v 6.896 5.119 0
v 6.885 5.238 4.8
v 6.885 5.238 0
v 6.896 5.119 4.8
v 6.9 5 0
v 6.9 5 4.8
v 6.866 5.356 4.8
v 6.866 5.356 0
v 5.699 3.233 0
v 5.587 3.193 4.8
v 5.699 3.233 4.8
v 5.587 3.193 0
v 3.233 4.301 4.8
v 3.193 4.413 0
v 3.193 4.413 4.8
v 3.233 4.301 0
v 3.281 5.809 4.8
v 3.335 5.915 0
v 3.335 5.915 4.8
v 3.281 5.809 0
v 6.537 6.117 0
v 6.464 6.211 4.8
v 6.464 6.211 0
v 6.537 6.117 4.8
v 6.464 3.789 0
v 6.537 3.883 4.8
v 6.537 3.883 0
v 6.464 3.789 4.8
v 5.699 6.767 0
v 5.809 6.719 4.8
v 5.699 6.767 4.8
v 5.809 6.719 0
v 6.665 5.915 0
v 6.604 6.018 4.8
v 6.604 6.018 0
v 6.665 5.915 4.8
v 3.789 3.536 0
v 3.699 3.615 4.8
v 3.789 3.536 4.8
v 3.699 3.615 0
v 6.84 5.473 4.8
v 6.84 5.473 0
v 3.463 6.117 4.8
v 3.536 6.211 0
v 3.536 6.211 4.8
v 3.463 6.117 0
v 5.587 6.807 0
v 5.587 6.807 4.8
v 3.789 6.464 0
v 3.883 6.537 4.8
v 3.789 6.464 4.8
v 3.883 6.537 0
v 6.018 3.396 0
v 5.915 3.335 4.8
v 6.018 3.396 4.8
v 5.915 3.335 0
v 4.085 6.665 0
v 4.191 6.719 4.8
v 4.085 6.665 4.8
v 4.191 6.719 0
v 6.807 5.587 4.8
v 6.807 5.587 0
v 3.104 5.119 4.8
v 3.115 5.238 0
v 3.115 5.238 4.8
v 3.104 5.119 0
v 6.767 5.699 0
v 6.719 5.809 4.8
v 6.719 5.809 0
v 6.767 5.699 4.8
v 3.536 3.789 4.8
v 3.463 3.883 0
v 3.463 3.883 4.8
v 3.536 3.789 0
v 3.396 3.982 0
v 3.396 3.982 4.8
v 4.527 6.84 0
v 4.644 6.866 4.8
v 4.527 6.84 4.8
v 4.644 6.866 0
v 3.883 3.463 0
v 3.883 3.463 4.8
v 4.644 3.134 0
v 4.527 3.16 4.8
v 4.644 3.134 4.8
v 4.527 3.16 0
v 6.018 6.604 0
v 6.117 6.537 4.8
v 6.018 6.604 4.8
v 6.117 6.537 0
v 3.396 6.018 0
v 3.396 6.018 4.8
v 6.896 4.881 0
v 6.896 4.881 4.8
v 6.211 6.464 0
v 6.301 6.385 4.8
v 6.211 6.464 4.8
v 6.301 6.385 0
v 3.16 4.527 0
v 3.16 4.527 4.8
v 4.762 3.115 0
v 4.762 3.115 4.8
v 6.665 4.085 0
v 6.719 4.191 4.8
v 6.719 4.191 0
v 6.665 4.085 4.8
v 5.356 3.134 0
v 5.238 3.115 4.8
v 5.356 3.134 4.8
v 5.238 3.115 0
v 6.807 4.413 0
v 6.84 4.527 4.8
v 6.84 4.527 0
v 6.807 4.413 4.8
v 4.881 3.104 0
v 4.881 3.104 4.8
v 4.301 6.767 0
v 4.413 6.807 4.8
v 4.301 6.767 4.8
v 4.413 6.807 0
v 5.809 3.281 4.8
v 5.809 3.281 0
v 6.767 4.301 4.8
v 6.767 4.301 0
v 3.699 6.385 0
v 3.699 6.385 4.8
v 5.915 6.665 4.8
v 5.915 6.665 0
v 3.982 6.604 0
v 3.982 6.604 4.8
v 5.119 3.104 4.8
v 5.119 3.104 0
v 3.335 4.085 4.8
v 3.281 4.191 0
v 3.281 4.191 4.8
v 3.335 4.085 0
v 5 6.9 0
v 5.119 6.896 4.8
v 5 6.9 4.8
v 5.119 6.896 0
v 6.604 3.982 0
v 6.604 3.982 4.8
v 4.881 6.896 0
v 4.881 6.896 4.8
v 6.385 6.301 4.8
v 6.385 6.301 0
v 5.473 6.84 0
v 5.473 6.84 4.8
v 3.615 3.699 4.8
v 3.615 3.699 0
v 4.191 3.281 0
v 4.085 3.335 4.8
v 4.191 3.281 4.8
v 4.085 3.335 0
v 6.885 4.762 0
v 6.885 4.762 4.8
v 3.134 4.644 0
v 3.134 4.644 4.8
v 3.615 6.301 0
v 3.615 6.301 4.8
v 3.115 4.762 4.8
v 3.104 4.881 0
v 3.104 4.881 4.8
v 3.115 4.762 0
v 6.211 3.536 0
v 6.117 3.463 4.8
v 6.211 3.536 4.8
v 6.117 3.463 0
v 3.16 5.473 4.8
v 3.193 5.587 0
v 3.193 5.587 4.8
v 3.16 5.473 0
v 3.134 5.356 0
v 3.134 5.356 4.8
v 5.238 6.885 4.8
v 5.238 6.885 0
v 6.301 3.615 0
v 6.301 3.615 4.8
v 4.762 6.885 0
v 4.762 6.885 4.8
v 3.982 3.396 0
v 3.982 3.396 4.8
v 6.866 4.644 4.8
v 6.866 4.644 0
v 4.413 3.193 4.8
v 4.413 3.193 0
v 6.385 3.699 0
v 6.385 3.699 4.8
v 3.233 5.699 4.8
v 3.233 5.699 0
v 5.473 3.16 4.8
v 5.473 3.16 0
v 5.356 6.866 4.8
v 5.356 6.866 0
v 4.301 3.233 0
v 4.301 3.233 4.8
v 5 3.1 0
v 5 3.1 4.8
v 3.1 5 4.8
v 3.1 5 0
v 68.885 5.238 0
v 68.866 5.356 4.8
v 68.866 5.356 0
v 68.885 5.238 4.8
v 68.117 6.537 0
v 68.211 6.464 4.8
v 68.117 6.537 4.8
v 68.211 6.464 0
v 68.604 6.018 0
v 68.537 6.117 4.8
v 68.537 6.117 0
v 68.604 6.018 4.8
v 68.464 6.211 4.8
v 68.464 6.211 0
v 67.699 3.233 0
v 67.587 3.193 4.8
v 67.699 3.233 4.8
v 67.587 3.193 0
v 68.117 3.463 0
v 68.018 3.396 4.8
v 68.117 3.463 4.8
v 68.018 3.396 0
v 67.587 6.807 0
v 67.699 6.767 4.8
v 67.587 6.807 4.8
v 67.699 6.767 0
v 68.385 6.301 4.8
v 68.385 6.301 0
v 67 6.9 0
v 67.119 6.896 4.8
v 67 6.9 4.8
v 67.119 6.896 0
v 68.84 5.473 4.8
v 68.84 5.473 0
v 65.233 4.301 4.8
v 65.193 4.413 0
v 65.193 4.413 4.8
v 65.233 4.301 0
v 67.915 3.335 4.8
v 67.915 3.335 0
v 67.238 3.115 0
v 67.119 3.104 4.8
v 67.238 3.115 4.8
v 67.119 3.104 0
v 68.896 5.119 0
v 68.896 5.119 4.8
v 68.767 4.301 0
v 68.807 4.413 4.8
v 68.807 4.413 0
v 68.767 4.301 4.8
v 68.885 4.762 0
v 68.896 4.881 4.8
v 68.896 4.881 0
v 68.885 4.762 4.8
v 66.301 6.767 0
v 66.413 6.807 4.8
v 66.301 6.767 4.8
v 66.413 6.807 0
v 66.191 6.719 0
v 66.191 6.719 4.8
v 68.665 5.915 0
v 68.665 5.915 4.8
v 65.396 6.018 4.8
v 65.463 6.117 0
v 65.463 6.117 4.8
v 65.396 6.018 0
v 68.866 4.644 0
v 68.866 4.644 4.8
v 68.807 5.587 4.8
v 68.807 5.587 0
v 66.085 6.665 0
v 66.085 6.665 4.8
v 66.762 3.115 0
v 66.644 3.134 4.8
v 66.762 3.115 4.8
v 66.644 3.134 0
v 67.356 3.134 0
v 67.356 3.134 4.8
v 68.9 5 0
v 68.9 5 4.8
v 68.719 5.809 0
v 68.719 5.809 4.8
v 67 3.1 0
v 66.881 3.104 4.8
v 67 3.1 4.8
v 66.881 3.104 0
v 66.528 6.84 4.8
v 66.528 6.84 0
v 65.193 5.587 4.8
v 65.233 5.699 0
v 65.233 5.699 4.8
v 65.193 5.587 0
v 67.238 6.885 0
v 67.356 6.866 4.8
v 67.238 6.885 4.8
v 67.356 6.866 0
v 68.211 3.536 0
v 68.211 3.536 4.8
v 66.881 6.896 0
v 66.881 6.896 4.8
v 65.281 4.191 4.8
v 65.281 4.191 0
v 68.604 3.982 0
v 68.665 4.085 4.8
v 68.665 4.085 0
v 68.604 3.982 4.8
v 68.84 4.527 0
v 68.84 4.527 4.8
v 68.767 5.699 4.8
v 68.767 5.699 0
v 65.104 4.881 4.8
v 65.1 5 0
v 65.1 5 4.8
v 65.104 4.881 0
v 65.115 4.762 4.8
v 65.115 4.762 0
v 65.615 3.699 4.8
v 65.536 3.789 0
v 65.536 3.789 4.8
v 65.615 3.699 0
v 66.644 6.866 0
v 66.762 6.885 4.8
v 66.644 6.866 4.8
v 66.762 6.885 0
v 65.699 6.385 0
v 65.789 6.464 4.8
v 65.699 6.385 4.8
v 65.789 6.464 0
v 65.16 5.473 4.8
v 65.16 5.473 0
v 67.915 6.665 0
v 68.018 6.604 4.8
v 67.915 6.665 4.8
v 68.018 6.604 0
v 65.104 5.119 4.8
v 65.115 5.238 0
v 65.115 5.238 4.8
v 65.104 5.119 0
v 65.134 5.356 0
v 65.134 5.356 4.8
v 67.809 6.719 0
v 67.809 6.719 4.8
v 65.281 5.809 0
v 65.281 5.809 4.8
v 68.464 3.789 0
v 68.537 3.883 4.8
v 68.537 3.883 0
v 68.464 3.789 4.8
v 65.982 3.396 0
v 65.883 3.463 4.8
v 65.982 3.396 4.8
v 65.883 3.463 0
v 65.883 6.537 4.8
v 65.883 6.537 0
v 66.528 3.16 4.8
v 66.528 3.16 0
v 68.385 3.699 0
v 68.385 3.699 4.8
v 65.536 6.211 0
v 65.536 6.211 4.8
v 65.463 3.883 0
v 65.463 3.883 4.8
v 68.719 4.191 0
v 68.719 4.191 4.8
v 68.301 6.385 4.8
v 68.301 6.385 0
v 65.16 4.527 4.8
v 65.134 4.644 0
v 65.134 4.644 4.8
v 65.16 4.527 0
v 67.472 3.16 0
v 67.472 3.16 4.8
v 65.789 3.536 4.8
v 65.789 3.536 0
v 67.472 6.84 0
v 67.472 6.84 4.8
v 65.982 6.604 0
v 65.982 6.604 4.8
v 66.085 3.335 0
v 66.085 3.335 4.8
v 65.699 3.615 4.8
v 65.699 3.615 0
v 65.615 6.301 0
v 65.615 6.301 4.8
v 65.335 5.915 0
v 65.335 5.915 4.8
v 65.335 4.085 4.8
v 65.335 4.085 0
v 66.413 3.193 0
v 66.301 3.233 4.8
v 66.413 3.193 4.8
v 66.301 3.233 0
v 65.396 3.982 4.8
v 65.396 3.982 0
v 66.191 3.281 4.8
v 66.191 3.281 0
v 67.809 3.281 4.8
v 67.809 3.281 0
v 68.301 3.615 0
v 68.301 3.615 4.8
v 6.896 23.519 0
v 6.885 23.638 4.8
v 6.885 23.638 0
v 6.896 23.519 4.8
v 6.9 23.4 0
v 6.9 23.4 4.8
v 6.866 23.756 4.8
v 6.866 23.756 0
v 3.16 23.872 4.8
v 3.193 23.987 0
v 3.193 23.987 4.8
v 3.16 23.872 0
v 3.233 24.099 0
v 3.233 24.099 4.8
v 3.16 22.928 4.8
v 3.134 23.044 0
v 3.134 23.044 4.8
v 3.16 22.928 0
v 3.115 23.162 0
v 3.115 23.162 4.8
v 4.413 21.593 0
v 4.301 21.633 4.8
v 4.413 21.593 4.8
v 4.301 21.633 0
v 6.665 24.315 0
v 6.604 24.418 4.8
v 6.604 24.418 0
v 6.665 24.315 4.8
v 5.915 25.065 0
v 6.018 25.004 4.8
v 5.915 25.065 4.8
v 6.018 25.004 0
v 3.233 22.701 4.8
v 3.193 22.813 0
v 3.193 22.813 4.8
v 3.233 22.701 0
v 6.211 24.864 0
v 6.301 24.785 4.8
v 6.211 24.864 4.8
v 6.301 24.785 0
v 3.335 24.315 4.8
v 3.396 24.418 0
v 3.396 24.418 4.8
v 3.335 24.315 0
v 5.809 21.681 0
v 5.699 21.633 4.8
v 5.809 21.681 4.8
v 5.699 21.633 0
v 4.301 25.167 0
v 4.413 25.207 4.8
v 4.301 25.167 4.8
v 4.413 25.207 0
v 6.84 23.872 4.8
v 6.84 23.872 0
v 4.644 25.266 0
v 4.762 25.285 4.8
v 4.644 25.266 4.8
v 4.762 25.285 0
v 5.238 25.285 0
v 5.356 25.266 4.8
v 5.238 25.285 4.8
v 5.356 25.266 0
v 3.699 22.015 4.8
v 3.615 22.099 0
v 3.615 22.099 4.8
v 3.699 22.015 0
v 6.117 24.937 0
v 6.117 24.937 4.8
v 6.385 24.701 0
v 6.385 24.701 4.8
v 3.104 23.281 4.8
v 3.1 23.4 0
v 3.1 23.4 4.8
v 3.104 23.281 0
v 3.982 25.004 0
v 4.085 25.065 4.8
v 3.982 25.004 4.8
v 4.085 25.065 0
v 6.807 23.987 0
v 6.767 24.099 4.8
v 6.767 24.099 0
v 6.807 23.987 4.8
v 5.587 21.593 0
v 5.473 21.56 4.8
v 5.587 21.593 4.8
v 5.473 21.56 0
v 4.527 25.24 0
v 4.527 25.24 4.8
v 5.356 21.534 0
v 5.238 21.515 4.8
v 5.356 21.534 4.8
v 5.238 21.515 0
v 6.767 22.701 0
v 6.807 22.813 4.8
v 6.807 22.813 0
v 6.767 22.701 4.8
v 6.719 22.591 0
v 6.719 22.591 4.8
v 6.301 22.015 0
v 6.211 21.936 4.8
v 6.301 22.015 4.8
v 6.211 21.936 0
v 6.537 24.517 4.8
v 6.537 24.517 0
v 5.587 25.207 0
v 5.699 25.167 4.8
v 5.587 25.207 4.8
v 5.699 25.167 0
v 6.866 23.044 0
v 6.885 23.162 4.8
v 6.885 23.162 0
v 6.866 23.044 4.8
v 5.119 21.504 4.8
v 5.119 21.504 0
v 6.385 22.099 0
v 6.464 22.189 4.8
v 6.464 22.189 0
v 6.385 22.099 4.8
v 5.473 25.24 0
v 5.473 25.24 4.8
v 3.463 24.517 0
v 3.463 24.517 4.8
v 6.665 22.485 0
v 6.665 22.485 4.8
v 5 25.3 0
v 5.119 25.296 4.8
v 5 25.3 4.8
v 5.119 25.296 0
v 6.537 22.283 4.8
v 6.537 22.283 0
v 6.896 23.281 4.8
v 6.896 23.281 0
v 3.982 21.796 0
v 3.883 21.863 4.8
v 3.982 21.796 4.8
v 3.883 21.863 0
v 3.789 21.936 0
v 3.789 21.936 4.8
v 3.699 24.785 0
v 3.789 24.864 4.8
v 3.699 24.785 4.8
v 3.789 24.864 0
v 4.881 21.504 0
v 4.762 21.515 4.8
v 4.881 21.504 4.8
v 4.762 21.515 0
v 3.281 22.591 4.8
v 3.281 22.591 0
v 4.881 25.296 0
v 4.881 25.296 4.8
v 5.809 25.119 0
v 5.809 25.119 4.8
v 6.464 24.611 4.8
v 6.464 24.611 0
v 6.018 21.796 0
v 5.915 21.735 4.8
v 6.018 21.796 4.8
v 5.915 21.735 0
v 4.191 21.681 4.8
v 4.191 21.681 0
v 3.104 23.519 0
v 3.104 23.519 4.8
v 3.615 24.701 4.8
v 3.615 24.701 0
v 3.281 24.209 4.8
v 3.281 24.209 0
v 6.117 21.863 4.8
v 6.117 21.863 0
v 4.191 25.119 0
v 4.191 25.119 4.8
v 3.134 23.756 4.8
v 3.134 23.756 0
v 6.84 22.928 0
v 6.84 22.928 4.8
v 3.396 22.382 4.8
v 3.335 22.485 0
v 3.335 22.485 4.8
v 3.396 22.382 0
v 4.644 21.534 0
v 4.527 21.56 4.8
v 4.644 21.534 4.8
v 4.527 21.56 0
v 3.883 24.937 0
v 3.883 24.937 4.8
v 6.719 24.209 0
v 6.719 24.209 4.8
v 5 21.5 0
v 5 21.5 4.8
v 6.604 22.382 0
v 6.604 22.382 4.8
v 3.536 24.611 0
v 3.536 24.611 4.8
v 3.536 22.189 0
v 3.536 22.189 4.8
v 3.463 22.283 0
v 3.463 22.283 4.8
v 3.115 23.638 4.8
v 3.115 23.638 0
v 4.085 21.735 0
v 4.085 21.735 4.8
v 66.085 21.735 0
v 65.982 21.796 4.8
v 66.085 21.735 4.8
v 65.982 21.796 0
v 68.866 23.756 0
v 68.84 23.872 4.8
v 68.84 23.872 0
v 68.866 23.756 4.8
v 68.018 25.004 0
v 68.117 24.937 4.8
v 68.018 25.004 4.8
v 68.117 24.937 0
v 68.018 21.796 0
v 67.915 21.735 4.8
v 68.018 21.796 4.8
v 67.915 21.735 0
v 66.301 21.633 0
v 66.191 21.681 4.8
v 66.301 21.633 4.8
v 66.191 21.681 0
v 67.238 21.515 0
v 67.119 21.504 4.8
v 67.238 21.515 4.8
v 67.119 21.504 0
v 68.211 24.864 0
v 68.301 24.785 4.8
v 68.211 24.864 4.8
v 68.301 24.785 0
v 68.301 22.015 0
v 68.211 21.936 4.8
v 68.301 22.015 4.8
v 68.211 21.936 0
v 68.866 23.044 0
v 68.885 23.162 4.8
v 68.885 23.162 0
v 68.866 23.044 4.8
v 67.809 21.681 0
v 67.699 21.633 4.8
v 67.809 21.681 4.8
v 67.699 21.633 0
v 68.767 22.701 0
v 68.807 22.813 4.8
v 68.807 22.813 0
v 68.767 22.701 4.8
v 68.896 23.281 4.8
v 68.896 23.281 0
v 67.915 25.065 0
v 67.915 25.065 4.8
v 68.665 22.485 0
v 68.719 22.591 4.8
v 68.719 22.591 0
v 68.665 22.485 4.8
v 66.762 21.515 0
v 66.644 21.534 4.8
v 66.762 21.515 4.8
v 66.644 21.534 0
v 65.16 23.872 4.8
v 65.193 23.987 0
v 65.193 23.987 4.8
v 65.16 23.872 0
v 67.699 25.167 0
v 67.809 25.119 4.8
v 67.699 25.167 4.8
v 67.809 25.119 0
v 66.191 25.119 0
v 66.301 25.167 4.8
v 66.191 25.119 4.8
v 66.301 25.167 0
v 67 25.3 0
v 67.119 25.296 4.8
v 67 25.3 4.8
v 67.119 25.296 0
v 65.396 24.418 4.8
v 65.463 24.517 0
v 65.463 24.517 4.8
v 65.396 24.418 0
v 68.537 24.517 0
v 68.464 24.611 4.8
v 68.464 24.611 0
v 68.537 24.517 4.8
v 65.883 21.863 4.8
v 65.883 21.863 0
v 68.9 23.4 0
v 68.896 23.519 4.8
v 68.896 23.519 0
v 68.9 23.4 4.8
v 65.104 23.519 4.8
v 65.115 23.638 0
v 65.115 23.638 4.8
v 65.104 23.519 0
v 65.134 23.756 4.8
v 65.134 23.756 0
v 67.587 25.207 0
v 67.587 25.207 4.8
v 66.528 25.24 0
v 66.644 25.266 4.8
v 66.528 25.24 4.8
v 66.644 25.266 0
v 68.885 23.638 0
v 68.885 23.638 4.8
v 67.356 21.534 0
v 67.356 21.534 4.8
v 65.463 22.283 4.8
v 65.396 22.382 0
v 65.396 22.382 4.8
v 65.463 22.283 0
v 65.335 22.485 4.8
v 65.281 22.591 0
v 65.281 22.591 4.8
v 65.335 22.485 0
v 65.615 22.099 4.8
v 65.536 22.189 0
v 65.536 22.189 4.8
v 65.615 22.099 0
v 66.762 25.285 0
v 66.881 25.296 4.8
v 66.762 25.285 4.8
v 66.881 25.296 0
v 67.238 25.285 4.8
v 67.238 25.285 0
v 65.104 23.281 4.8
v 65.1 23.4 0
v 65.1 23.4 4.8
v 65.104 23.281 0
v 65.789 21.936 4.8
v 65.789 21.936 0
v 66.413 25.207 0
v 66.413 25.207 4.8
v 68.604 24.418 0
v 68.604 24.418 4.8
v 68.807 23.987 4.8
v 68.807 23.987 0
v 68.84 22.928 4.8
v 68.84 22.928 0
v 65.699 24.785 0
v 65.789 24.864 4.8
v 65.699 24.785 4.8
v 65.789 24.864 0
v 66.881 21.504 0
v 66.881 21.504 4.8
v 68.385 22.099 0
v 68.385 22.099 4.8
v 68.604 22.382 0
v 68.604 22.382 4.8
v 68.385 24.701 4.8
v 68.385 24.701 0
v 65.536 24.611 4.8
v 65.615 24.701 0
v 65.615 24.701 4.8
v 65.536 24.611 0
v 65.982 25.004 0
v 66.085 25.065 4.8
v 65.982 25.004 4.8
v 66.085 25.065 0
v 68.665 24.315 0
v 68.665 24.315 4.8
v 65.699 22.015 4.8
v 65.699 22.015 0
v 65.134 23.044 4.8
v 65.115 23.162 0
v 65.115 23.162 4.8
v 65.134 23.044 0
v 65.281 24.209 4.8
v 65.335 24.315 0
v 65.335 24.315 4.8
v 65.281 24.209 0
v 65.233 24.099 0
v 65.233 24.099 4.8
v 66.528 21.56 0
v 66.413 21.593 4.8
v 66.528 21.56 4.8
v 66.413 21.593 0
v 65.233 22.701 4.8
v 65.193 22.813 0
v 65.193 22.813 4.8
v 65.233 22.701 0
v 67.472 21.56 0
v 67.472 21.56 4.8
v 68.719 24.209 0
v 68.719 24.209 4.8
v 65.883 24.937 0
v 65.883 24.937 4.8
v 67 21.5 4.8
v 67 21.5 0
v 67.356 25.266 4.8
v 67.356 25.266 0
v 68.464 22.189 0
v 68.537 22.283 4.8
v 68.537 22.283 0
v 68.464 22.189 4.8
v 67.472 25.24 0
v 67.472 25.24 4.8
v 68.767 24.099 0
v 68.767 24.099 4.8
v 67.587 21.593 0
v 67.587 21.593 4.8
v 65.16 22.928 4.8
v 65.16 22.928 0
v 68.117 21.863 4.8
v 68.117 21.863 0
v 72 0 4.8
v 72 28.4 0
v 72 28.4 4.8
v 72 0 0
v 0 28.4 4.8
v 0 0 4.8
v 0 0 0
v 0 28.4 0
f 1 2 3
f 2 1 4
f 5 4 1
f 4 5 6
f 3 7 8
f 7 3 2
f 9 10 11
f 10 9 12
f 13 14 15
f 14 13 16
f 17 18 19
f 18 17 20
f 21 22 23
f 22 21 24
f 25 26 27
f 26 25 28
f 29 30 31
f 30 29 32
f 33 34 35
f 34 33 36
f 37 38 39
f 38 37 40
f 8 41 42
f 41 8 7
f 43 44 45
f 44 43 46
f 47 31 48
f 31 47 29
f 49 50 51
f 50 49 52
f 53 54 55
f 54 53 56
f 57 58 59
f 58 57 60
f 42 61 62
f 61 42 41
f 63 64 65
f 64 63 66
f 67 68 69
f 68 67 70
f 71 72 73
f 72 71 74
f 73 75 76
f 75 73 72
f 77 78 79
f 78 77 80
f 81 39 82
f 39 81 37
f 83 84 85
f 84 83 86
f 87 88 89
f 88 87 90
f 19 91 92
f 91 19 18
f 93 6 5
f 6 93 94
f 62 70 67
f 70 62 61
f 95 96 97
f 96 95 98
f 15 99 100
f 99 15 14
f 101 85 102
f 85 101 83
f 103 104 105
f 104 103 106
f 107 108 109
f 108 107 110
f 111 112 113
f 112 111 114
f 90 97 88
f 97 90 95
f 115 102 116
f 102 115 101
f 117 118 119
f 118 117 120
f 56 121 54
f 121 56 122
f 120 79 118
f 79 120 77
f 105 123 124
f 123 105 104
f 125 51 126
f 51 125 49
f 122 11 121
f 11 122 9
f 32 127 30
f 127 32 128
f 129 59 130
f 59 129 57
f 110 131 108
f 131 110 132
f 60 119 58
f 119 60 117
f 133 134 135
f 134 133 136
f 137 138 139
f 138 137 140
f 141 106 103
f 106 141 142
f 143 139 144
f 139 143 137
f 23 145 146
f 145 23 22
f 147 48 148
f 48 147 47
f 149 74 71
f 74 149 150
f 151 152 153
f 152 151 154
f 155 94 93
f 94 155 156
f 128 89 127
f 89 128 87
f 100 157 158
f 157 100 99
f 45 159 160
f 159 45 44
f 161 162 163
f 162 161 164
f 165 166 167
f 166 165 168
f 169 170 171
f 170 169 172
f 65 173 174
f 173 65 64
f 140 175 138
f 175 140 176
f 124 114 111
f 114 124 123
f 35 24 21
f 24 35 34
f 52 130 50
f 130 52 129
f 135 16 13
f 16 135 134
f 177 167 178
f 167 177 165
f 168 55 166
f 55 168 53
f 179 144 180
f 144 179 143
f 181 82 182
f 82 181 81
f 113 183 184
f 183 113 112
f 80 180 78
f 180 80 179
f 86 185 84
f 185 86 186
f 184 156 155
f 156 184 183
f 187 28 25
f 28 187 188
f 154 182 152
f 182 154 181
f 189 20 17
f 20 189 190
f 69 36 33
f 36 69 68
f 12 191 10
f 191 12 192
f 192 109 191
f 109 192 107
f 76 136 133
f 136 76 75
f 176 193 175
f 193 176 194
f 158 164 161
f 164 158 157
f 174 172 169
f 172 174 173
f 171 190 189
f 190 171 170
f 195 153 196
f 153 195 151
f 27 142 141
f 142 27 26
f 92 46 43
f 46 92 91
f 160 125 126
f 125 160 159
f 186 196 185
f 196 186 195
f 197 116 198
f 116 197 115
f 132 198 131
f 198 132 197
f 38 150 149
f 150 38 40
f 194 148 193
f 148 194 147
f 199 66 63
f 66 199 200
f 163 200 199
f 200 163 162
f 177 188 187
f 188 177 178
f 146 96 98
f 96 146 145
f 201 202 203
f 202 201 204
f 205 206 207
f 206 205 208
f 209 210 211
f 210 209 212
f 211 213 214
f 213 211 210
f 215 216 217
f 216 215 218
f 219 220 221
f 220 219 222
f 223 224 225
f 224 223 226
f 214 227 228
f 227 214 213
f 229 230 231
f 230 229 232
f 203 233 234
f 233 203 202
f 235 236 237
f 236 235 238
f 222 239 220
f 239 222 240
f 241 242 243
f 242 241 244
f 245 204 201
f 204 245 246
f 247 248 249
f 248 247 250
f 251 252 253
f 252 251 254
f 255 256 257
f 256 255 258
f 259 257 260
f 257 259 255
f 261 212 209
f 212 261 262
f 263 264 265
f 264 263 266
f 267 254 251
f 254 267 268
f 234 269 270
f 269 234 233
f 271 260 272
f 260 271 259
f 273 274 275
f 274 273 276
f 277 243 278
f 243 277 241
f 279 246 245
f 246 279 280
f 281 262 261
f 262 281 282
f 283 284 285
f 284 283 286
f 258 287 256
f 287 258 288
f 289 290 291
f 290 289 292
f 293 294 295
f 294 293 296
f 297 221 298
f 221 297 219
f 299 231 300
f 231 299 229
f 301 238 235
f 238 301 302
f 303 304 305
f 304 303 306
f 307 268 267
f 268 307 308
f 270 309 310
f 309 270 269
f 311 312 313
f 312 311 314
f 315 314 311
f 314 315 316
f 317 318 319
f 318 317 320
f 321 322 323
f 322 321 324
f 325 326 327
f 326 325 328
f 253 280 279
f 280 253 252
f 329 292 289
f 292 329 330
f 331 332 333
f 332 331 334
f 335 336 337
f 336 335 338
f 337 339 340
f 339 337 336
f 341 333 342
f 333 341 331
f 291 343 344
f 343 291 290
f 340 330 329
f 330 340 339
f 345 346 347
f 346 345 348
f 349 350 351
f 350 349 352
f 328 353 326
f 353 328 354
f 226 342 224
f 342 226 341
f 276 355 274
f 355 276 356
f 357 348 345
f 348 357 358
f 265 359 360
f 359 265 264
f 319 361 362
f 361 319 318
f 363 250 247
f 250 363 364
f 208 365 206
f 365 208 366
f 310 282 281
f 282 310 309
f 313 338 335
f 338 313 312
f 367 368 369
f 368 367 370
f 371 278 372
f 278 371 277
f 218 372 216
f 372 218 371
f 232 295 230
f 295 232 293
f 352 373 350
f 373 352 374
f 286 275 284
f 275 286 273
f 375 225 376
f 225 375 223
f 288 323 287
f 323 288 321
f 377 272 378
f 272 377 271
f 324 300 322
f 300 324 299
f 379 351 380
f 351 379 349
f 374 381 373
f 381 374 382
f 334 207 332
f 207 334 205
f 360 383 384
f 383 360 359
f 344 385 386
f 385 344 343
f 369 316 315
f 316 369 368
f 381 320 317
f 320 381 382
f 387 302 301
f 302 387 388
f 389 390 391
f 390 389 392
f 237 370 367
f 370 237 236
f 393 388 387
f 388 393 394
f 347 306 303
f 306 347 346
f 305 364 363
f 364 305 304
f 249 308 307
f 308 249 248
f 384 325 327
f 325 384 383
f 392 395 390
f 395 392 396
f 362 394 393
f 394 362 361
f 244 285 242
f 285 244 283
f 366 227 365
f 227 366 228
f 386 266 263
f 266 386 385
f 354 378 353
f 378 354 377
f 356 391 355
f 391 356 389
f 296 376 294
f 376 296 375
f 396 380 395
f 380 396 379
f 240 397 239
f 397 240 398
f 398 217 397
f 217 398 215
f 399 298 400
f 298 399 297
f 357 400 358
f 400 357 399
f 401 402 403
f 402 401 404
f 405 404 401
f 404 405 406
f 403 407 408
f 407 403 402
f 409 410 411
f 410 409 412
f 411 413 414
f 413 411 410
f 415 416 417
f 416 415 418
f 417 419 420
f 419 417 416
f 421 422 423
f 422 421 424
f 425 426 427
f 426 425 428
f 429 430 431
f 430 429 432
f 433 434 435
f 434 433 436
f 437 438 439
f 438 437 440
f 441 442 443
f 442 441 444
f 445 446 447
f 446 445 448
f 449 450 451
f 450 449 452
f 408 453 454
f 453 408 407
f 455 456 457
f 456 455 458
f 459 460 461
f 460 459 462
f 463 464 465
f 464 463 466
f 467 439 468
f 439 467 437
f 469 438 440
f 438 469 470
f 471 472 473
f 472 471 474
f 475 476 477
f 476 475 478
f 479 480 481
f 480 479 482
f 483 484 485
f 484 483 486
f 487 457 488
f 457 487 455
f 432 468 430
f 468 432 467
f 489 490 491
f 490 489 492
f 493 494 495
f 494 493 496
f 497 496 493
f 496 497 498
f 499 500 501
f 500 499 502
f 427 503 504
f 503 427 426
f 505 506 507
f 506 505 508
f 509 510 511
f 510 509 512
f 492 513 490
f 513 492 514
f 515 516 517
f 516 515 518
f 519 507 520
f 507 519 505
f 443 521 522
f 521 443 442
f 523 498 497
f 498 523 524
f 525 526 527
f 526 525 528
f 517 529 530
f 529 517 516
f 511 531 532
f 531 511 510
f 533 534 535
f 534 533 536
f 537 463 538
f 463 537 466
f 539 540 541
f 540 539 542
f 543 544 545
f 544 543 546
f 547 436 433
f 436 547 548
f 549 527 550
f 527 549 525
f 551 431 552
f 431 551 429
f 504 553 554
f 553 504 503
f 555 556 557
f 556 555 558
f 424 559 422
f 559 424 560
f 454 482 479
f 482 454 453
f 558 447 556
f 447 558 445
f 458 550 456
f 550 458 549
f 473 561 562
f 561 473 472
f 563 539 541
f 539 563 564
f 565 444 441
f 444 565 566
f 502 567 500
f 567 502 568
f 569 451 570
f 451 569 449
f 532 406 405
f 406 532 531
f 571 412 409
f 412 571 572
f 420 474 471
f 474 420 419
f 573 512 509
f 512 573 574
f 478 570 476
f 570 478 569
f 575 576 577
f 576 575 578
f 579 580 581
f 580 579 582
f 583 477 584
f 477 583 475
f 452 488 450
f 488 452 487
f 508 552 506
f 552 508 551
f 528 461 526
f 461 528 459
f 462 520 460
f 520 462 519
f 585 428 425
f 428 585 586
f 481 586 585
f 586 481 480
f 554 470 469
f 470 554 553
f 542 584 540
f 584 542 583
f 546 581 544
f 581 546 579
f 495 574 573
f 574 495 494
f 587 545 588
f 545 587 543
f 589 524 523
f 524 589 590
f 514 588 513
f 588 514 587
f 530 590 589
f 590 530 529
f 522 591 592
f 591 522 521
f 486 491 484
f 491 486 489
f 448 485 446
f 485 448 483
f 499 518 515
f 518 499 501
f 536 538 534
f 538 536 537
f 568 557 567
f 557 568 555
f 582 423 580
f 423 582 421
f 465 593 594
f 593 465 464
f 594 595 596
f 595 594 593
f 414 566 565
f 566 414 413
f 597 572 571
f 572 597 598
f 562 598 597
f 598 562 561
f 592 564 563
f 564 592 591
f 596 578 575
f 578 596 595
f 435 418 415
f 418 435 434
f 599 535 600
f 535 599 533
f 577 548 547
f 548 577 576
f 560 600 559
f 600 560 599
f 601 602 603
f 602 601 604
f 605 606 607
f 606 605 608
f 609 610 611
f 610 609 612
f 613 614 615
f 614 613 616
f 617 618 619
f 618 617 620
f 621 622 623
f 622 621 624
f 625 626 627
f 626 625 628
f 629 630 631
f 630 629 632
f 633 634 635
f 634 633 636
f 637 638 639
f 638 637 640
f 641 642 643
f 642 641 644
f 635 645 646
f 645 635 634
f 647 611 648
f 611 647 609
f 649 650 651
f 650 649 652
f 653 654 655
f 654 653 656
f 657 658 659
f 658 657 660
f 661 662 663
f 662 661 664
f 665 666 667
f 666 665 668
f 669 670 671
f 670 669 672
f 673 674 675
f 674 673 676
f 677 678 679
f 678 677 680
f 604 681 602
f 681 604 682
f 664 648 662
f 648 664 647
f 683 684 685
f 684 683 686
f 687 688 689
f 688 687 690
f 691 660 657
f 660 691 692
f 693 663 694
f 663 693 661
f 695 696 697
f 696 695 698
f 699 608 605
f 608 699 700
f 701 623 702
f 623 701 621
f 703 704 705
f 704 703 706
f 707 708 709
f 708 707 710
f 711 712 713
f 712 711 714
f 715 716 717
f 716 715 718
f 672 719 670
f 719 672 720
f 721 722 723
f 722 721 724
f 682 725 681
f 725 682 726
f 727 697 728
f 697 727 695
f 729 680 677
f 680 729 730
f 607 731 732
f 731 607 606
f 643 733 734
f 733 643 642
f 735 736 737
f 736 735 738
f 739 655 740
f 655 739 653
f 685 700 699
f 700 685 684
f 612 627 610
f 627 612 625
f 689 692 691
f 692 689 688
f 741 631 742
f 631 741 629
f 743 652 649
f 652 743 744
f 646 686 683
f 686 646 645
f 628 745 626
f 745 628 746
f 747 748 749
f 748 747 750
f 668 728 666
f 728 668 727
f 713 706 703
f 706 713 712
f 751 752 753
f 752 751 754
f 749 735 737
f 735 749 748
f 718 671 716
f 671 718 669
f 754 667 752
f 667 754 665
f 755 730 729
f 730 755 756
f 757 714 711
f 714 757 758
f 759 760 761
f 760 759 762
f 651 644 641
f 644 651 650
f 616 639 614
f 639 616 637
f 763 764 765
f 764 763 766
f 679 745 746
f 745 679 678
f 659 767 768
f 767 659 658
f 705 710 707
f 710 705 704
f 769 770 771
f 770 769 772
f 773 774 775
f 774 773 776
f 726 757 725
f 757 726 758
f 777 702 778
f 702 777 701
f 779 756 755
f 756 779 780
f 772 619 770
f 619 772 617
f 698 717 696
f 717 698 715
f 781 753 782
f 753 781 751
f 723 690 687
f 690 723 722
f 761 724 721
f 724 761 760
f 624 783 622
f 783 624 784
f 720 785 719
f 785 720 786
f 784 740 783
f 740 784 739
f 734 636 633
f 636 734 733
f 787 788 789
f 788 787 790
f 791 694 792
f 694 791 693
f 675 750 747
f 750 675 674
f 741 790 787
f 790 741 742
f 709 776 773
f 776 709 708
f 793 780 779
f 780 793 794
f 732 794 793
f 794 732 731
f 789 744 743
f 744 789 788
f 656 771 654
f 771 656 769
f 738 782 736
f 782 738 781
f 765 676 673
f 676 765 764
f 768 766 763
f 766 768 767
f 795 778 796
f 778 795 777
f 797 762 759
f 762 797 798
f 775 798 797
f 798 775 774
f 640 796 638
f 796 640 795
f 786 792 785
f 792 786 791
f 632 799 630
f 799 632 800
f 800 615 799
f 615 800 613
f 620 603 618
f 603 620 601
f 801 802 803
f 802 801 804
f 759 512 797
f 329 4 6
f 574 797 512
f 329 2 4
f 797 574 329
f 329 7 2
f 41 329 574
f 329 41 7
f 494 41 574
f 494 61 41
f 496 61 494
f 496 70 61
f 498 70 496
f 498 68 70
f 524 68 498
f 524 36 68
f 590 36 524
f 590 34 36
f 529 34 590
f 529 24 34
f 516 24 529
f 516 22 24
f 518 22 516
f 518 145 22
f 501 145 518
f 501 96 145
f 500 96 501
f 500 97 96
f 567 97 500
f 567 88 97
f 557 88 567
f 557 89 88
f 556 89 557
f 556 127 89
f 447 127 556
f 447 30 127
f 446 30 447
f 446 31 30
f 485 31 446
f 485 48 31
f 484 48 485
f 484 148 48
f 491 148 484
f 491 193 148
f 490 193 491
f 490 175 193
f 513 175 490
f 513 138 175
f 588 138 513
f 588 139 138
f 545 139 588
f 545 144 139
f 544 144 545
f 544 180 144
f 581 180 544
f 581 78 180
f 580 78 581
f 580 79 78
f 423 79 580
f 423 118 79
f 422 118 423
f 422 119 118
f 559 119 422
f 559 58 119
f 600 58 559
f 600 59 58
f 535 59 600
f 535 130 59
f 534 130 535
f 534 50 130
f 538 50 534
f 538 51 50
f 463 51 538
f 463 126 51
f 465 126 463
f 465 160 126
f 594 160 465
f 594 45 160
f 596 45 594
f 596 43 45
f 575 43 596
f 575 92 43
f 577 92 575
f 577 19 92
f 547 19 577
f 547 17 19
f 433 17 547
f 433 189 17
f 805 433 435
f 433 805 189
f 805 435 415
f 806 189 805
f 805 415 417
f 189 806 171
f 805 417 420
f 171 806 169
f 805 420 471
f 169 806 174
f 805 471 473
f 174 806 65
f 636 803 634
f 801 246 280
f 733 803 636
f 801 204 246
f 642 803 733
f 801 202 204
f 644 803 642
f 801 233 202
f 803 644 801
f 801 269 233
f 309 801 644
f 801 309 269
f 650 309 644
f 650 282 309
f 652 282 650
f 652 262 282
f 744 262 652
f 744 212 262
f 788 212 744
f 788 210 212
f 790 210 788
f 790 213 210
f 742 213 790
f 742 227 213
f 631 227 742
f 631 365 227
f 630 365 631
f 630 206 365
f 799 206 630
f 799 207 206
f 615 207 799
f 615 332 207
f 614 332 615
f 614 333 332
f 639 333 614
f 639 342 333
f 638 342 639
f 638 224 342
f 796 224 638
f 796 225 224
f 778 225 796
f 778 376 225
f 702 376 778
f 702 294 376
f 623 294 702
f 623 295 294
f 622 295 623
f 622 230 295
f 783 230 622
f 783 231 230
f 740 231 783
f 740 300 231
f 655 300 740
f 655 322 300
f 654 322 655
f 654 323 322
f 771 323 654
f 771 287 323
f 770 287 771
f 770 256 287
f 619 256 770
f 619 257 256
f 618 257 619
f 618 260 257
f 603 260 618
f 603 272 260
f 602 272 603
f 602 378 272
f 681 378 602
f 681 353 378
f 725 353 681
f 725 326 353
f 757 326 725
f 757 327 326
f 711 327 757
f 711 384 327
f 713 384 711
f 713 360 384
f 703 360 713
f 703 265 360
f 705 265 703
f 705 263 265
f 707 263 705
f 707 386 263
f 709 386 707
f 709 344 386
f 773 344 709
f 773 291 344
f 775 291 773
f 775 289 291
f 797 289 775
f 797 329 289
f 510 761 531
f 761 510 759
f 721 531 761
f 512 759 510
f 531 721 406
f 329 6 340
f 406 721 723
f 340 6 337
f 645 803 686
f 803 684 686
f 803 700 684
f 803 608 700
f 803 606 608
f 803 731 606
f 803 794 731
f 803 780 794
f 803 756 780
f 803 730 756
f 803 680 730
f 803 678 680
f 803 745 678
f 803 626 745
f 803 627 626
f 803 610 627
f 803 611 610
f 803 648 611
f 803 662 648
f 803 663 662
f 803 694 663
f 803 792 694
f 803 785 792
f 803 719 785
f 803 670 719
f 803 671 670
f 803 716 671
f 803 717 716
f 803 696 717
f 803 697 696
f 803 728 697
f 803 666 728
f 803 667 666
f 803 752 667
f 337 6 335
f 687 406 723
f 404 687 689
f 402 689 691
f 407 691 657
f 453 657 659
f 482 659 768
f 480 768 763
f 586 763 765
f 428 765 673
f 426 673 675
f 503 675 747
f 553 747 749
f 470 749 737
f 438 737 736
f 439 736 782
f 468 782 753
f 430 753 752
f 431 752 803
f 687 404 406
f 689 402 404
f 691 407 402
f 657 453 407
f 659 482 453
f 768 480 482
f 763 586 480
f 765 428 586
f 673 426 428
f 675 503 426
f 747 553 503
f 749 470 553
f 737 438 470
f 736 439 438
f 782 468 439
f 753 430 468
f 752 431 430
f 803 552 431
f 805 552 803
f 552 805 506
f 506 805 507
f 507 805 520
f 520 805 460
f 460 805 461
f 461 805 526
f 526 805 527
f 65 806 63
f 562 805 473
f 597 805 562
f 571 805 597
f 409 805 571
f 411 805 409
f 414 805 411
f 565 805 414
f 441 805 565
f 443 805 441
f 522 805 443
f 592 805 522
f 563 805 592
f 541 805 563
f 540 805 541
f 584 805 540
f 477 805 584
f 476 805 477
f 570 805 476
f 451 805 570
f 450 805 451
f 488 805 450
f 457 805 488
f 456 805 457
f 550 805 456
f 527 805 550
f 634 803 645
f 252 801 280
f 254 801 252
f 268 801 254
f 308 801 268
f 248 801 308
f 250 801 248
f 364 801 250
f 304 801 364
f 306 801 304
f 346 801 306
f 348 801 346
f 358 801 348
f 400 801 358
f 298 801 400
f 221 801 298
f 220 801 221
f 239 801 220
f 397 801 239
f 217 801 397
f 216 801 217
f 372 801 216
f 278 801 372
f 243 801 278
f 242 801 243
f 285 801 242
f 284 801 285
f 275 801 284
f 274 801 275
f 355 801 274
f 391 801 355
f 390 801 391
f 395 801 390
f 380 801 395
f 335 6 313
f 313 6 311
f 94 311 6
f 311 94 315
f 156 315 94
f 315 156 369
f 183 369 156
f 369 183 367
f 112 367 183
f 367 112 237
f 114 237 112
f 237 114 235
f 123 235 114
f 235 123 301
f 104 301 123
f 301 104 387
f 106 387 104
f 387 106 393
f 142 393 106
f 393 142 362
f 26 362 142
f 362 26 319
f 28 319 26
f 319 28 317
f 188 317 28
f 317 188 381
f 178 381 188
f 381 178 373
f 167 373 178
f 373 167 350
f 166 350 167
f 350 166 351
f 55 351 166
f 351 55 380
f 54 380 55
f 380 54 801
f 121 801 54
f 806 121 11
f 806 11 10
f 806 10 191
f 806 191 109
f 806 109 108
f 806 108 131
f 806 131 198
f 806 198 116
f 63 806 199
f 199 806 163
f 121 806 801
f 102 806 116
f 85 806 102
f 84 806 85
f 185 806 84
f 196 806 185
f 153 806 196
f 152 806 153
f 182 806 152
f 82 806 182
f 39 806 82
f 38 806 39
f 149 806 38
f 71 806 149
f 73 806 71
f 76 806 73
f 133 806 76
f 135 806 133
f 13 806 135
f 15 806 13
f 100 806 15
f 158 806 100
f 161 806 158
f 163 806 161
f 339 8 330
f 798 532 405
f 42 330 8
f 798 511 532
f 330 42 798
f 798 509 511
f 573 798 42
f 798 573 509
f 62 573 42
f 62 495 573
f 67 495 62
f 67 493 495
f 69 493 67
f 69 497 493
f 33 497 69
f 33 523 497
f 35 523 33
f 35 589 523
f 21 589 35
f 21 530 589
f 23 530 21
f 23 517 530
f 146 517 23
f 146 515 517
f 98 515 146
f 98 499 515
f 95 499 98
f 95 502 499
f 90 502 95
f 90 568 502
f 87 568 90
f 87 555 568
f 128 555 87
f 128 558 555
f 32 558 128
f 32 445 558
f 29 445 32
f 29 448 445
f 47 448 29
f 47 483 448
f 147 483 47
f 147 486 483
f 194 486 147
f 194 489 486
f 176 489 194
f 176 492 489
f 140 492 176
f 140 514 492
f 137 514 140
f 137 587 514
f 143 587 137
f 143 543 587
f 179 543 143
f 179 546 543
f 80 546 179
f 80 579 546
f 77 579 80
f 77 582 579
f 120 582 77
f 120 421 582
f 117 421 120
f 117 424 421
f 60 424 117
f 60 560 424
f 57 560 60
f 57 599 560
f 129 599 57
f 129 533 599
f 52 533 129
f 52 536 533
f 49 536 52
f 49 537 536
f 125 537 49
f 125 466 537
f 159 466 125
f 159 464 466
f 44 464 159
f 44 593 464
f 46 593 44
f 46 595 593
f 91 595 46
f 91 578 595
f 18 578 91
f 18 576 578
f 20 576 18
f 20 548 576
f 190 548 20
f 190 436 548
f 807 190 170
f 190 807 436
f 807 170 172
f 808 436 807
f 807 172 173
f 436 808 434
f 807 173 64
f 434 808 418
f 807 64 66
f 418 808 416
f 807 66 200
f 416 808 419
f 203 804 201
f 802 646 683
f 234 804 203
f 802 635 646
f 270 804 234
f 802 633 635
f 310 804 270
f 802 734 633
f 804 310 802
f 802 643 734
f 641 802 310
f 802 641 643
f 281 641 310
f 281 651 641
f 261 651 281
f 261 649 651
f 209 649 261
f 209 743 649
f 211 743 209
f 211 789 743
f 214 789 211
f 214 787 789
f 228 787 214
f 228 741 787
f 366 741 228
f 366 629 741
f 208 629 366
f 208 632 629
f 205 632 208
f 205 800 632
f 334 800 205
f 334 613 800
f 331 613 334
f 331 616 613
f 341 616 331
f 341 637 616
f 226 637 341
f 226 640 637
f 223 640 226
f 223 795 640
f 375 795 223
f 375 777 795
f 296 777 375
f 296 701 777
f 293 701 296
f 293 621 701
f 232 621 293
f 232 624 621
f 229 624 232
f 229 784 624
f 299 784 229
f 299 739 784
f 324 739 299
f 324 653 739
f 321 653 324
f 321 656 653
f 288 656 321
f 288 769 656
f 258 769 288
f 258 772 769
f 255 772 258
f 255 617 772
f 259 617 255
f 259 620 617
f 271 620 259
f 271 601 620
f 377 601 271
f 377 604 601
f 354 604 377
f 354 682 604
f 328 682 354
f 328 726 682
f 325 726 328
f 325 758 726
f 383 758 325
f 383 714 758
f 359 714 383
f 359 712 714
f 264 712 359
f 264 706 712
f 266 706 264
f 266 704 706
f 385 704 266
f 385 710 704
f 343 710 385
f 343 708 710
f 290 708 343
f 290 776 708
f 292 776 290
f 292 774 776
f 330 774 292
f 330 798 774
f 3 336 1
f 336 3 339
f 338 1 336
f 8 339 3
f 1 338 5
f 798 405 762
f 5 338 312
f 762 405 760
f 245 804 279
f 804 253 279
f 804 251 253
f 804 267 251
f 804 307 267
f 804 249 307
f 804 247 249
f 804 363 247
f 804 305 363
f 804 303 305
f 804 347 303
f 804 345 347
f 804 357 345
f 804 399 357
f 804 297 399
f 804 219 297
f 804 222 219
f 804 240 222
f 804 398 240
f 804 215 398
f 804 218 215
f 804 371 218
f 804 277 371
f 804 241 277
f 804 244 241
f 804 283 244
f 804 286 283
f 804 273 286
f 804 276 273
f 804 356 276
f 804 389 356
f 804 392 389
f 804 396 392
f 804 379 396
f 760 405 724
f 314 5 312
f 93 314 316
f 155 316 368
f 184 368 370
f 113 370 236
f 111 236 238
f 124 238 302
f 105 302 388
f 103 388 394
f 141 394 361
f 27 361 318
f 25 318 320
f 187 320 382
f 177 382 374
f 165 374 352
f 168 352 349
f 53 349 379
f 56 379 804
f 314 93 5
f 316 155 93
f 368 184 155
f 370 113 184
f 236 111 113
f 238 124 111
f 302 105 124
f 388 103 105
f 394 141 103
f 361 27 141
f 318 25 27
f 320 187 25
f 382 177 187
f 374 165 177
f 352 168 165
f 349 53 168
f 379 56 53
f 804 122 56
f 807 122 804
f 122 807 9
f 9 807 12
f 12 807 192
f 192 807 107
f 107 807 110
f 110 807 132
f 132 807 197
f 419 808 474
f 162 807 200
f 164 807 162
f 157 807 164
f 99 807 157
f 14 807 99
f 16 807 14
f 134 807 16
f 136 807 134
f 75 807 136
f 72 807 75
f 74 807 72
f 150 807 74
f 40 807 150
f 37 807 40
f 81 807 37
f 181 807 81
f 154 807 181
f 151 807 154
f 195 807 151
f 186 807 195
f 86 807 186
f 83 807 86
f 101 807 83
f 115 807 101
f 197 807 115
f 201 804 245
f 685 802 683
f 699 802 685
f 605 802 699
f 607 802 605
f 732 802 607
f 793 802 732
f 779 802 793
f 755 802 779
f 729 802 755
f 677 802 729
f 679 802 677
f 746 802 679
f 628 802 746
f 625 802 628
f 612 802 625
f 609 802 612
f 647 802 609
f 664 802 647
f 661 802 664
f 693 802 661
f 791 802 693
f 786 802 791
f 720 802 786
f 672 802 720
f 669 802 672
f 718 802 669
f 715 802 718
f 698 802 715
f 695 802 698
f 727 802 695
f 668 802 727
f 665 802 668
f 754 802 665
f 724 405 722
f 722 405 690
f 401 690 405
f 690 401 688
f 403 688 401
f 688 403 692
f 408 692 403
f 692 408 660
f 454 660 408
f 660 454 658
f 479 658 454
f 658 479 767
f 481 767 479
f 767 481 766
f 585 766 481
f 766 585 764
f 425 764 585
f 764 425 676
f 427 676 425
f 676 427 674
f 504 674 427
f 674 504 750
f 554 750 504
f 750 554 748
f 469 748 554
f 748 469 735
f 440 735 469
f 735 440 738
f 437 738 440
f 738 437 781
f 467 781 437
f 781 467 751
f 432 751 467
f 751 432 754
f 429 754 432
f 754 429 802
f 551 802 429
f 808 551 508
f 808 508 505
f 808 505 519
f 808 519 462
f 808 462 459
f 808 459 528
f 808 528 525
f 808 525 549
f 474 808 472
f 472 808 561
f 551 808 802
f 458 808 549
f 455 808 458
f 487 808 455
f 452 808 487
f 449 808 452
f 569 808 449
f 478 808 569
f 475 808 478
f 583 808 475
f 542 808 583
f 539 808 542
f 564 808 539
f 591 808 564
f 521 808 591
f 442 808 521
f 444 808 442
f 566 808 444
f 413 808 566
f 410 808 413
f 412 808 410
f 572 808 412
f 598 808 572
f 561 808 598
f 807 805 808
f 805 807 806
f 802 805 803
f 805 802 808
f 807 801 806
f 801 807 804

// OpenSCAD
// file: ../configurations/global.scad
housing_facades_throws_diameter = 3.8;

// external size
case_external_x_size = 90;
case_external_y_size = 140;
case_external_z_size = 38;
case_external_panes_thickness = 4.8;

facade_front_round_edges_radius = 5;
facade_throws_margin = 5;

facade_front_fixation_throws_diameter = housing_facades_throws_diameter;

// facade corners
facade_corners_offset_lenght = 9;
facade_corners_main_x_size = 19;
facade_corners_main_y_size = 19;
facade_corners_main_thickness = 11;

facade_fn = 100;


facade_controller_coords = [
    case_external_x_size / 2,
    case_external_y_size / 2 - 30,
];


// Screen frames
screen_frame_electronic_board_margin = 3;
screen_frame_throw_diameter = 3.5;
screen_frame_piece_z_size = 1.5;
screen_frame_piece_glass_embedding_margin = 1;
screen_frame_piece_glass_embedding_z_depth = 1;
screen_frame_facade_piece_z_size = 1;
screen_frame_fn = 100;

screen_glass_visible_zone_x_margin = 0.7;
screen_glass_visible_zone_y_margin = 0.7;
screen_glass_z_size = 1;

facade_screen_coords = [
    case_external_x_size / 2,
    case_external_y_size / 2 + 28,
];


// Generics
insert_throw_diameter = 4.2;
insert_throw_length = 6 + 2;


// Controller facade
controller_breadboard_x_size_point = 28;
controller_breadboard_y_size_point = 9;

controller_facade_z_size = 2;
controller_facade_button_throw_margin = 1;
controller_facade_small_button_throw_margin = 0.5;
controller_facade_a_b_button_throw_margin = 0.5;

controller_facade_border_rounded_border_1 = 5;
controller_facade_border_rounded_border_2 = 4;

controller_facade_with_border_x_size = 82;
controller_facade_with_border_y_size = 47;

controller_facade_border_throws_margin = 5;
controller_braidboard_throw_margin = 1;

controller_facade_border_fn = 80;


// Cross Button
controller_cross_button_x_y_size = 20;
controller_cross_button_z_size = 4;
controller_cross_button_thickness = 6;
controller_cross_button_round_edges_radius = 1;
controller_cross_button_support_x_y_size = 22;
controller_cross_button_support_z_size = 1;
controller_cross_button_fn = 150;


// A and B Buttons
controller_a_b_button_diameter = 7.5;
controller_a_b_button_z_size = 4;
controller_a_b_button_support_diameter = 9.5;
controller_a_b_button_support_z_size = 1;
controller_a_b_button_fn = 80;


// small Buttons
controller_small_button_diameter = 5.5;
controller_small_button_z_size = 3;
controller_small_button_support_diameter = 7.5;
controller_small_button_support_z_size = 1;
controller_small_button_fn = 80;

// Directional cross
controller_directional_cross_points_coords = [6, 5];
controller_start_button_points_coords = [14, 3];
controller_select_button_points_coords = [18, 3];
controller_menu_button_points_coords = [14, 7];
controller_option_button_points_coords = [18, 7];
controller_a_button_points_coords = [23, 4];
controller_b_button_points_coords = [27, 6];
controller_bolt_throws_list = [
    [2, 2],
    [2, 8],
    [10, 2],
    [10, 8],
    [27, 2],
    [23, 8],
];


// usb charger holder
usb_charger_support_total_x_size = 17.57 + 15;
usb_charger_support_total_y_size = 12;
usb_charger_support_total_z_size = 2;


usb_charger_fixation_support_z_size = 4.5;
usb_charger_encaps_x_size = 17.57 + 1;
usb_charger_encaps_y_size = 27.85 + 1;
usb_charger_encaps_z_size = 1;

usb_charger_facade_x_fixation_spacing = 42;
usb_charger_facade_y_size = 1.36;
usb_charger_facade_z_size = 14;

usb_charger_throw_diameter = 3.5;
usb_charger_facade_holder_z_offset = 3.5; //
usb_charger_fixation_facade_y_margin = 0.5;
usb_charger_throw_offset_y = 4.5;
usb_charger_throw_offset_x = 3.5;
usb_charger_fadace_fn = 100;

usb_charger_external_facade_main_throw_margin = 2;
usb_charger_external_facade_main_throw_diameter = housing_facades_throws_diameter;

usb_charger_coords = [
    28, 15
];


facade_top_on_off_button_throw_diameter = 12.8;

facade_top_on_off_button_coords = [
    case_external_x_size / 2 + 18,
    case_external_z_size / 2
];


// Bolt join Piece Mother board
bolt_join_mother_board_internal_diameter = 3.5;
bolt_join_mother_board_external_diameter = 3.5 + (0.4 * 6);
bolt_join_mother_board_height = 3;

// Bolt join Piece GamePadController
bolt_join_game_pad_internal_diameter = 3.5;
bolt_join_game_pad_external_diameter = 3.5 + (0.4 * 6);
bolt_join_game_pad_height = 6.5;

bolt_join_fn = 500;


// Mother board breadboard
mother_board_x_size_point = 25;
mother_board_y_size_point = 32;

mother_board_coords = [
    case_external_x_size / 2 - ((mother_board_x_size_point+1) * 2.54) / 2,
    44,
    3
];

mother_board_bolt_throws_list = [
    [3, 2],
    [3, 17],
    [23, 2],
    [23, 17],
];


// Speaker
speaker_facade_throw_diameter = 28 + 1;
speaker_facade_z_size = 1.36;
speaker_facade_rounded_radius = 5;
// file: ../libraries/commons.scad
module forEachCoord(throws_coords_list) {
    for (coords = throws_coords_list)
        translate(
            [
                coords[0] == undef ? 0 : coords[0],
                coords[1] == undef ? 0 : coords[1],
                coords[2] == undef ? 0 : coords[2],
            ]
        )
            children();
}


// @todo
module forEachPointCoord(throws_coords_list) {
    for (coords = throws_coords_list)
        translate(
            [
                coords[0] == undef ? 0 : coords[0],
                coords[1] == undef ? 0 : coords[1],
                coords[2] == undef ? 0 : coords[2],
            ]
        )
            children();
}
// main file
use <./../libraries/commons.scad>

include <./../configurations/global.scad>

module facadeBottomPiece(
    x_size = case_external_x_size - (facade_corners_offset_lenght * 2),
    y_size = case_external_z_size - (case_external_panes_thickness * 2),
    z_size = case_external_panes_thickness,
    throws_margin = facade_throws_margin,
    throws_diameter = housing_facades_throws_diameter,

    $fn = facade_fn
) {
    difference() {
        color("BurlyWood")
            cube([x_size, y_size, z_size]);

        translate([0, 0, -z_size / 2])
            forEachCoord([
                [throws_margin, throws_margin],
                [x_size - throws_margin, throws_margin],
                [throws_margin, y_size - throws_margin],
                [x_size - throws_margin, y_size - throws_margin,],
            ])
                cylinder(h = z_size * 2, d = throws_diameter, $fn = $fn);
    }
}


facadeBottomPiece();
